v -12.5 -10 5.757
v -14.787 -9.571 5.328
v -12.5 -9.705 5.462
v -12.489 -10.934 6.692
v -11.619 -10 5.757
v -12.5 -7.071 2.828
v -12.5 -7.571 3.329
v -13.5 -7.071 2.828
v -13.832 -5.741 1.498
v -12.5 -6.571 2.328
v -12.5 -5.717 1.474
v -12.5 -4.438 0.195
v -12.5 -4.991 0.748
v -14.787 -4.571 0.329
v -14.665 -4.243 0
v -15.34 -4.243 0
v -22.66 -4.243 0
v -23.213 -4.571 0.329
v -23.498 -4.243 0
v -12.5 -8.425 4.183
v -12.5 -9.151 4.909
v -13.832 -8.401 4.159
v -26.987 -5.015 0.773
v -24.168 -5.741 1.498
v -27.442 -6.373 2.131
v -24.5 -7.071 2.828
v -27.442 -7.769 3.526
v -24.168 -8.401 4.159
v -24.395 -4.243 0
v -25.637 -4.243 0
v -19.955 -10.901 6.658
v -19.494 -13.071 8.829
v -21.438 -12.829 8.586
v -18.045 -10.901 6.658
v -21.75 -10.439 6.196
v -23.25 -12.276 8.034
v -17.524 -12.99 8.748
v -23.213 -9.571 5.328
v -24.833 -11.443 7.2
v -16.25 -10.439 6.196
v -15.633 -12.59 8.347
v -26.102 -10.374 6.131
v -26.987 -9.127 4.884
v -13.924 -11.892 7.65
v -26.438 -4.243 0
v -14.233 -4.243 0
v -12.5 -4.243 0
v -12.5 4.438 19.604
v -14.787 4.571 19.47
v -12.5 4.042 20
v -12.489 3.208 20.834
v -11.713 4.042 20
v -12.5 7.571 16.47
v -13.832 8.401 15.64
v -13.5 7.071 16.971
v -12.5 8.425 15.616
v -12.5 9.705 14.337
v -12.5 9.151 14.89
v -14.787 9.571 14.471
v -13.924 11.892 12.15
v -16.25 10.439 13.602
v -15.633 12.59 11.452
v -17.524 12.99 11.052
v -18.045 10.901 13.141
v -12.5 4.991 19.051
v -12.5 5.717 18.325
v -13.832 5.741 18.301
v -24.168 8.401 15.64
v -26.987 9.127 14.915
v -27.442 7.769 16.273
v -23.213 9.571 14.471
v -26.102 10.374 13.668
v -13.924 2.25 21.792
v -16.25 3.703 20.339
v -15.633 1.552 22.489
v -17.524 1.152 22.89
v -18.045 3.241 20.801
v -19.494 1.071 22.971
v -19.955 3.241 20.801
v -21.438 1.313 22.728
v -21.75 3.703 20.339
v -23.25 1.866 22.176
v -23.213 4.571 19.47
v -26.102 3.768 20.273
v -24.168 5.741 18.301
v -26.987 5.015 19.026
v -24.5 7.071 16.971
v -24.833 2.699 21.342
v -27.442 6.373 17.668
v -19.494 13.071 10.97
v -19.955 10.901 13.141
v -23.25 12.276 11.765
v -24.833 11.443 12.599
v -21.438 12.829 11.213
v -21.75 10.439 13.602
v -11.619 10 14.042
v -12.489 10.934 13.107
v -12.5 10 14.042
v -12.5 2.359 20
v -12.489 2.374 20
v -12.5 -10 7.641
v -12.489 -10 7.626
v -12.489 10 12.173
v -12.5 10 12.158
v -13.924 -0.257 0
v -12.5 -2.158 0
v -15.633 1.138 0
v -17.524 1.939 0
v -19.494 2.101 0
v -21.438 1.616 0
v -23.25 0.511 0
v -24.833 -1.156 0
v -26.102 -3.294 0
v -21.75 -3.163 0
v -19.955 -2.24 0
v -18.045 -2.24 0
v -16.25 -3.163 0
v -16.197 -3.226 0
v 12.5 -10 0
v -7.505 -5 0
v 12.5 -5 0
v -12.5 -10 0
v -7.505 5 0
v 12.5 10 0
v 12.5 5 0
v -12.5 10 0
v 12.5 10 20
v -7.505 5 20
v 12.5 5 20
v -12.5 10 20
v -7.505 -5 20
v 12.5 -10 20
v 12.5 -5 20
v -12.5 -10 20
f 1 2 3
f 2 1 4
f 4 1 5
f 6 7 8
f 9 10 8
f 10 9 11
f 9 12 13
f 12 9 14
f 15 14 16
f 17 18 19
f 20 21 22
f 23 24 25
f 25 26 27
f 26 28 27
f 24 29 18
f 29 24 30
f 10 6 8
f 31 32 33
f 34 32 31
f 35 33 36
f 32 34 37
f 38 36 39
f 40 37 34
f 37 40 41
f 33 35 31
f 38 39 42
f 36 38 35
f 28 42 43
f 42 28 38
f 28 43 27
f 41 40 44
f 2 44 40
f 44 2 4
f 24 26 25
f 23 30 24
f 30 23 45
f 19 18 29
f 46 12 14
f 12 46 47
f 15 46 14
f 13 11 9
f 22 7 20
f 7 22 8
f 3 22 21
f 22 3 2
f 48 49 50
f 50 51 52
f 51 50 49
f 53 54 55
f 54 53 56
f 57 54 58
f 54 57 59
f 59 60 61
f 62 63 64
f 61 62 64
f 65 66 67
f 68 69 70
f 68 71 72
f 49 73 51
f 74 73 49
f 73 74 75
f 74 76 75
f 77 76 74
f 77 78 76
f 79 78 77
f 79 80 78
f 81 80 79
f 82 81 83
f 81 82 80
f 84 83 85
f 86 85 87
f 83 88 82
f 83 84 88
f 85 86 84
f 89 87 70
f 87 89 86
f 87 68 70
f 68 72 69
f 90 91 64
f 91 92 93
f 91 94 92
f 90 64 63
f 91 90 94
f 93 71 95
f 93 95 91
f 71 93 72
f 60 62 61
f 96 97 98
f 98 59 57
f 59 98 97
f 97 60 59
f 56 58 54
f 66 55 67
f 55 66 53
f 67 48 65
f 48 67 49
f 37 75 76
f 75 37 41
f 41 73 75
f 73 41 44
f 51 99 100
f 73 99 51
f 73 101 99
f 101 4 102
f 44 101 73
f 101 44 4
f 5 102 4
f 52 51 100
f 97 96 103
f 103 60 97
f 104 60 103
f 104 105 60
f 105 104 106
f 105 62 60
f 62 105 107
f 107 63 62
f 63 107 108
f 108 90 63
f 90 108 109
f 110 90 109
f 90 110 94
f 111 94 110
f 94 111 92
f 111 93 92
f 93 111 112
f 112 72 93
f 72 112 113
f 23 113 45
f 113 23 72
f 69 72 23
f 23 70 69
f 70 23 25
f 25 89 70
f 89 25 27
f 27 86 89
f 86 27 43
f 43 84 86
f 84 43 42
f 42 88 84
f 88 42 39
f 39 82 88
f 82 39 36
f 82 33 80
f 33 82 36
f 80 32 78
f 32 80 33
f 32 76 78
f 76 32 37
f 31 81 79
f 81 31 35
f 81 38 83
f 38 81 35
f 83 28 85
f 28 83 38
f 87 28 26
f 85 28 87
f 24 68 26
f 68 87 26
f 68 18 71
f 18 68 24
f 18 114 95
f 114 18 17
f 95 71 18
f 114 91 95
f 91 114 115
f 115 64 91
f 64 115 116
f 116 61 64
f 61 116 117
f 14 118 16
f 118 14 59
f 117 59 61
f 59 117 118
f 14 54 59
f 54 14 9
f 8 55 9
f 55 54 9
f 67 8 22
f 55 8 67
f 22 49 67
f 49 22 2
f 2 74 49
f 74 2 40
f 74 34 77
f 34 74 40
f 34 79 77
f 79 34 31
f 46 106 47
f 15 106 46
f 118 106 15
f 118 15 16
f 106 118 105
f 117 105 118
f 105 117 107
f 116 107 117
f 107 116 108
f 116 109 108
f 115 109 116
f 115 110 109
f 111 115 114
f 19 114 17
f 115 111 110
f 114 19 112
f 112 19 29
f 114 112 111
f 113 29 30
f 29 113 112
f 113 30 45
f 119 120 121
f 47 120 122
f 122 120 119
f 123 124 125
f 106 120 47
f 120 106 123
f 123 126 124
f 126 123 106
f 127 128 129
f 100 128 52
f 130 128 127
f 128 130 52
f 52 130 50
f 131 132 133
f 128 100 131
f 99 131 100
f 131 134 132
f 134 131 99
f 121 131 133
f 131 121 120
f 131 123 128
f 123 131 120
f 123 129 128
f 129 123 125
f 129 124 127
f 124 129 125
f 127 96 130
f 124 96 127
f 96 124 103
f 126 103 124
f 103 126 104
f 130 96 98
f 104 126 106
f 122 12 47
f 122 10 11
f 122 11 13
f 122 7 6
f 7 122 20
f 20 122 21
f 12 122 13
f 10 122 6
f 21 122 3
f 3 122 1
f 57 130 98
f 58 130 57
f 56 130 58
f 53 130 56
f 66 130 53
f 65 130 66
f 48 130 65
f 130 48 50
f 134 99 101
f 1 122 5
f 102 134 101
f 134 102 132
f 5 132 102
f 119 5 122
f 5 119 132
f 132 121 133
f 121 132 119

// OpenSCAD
platform_thickness = 10;
padding = 5;
depth = 5;

module attaching_brace() {
	linear_extrude(20)
		difference() {
		square([platform_thickness + 2 * padding + depth, platform_thickness + 2 * padding], center = true);

		translate([padding/2, 0, 0])
		square([platform_thickness + padding + depth + 0.01, platform_thickness], center = true);
		}
}

attaching_brace();

difference() {
	rotate([-45,0,0])
	translate([-19, -7, -3])
	linear_extrude(20)
		difference() {
			circle(r=8.5);
			circle(r=5.5);
		}

	translate([0,0,-10])
	linear_extrude(10)
	square([75,75], center=true);
}
